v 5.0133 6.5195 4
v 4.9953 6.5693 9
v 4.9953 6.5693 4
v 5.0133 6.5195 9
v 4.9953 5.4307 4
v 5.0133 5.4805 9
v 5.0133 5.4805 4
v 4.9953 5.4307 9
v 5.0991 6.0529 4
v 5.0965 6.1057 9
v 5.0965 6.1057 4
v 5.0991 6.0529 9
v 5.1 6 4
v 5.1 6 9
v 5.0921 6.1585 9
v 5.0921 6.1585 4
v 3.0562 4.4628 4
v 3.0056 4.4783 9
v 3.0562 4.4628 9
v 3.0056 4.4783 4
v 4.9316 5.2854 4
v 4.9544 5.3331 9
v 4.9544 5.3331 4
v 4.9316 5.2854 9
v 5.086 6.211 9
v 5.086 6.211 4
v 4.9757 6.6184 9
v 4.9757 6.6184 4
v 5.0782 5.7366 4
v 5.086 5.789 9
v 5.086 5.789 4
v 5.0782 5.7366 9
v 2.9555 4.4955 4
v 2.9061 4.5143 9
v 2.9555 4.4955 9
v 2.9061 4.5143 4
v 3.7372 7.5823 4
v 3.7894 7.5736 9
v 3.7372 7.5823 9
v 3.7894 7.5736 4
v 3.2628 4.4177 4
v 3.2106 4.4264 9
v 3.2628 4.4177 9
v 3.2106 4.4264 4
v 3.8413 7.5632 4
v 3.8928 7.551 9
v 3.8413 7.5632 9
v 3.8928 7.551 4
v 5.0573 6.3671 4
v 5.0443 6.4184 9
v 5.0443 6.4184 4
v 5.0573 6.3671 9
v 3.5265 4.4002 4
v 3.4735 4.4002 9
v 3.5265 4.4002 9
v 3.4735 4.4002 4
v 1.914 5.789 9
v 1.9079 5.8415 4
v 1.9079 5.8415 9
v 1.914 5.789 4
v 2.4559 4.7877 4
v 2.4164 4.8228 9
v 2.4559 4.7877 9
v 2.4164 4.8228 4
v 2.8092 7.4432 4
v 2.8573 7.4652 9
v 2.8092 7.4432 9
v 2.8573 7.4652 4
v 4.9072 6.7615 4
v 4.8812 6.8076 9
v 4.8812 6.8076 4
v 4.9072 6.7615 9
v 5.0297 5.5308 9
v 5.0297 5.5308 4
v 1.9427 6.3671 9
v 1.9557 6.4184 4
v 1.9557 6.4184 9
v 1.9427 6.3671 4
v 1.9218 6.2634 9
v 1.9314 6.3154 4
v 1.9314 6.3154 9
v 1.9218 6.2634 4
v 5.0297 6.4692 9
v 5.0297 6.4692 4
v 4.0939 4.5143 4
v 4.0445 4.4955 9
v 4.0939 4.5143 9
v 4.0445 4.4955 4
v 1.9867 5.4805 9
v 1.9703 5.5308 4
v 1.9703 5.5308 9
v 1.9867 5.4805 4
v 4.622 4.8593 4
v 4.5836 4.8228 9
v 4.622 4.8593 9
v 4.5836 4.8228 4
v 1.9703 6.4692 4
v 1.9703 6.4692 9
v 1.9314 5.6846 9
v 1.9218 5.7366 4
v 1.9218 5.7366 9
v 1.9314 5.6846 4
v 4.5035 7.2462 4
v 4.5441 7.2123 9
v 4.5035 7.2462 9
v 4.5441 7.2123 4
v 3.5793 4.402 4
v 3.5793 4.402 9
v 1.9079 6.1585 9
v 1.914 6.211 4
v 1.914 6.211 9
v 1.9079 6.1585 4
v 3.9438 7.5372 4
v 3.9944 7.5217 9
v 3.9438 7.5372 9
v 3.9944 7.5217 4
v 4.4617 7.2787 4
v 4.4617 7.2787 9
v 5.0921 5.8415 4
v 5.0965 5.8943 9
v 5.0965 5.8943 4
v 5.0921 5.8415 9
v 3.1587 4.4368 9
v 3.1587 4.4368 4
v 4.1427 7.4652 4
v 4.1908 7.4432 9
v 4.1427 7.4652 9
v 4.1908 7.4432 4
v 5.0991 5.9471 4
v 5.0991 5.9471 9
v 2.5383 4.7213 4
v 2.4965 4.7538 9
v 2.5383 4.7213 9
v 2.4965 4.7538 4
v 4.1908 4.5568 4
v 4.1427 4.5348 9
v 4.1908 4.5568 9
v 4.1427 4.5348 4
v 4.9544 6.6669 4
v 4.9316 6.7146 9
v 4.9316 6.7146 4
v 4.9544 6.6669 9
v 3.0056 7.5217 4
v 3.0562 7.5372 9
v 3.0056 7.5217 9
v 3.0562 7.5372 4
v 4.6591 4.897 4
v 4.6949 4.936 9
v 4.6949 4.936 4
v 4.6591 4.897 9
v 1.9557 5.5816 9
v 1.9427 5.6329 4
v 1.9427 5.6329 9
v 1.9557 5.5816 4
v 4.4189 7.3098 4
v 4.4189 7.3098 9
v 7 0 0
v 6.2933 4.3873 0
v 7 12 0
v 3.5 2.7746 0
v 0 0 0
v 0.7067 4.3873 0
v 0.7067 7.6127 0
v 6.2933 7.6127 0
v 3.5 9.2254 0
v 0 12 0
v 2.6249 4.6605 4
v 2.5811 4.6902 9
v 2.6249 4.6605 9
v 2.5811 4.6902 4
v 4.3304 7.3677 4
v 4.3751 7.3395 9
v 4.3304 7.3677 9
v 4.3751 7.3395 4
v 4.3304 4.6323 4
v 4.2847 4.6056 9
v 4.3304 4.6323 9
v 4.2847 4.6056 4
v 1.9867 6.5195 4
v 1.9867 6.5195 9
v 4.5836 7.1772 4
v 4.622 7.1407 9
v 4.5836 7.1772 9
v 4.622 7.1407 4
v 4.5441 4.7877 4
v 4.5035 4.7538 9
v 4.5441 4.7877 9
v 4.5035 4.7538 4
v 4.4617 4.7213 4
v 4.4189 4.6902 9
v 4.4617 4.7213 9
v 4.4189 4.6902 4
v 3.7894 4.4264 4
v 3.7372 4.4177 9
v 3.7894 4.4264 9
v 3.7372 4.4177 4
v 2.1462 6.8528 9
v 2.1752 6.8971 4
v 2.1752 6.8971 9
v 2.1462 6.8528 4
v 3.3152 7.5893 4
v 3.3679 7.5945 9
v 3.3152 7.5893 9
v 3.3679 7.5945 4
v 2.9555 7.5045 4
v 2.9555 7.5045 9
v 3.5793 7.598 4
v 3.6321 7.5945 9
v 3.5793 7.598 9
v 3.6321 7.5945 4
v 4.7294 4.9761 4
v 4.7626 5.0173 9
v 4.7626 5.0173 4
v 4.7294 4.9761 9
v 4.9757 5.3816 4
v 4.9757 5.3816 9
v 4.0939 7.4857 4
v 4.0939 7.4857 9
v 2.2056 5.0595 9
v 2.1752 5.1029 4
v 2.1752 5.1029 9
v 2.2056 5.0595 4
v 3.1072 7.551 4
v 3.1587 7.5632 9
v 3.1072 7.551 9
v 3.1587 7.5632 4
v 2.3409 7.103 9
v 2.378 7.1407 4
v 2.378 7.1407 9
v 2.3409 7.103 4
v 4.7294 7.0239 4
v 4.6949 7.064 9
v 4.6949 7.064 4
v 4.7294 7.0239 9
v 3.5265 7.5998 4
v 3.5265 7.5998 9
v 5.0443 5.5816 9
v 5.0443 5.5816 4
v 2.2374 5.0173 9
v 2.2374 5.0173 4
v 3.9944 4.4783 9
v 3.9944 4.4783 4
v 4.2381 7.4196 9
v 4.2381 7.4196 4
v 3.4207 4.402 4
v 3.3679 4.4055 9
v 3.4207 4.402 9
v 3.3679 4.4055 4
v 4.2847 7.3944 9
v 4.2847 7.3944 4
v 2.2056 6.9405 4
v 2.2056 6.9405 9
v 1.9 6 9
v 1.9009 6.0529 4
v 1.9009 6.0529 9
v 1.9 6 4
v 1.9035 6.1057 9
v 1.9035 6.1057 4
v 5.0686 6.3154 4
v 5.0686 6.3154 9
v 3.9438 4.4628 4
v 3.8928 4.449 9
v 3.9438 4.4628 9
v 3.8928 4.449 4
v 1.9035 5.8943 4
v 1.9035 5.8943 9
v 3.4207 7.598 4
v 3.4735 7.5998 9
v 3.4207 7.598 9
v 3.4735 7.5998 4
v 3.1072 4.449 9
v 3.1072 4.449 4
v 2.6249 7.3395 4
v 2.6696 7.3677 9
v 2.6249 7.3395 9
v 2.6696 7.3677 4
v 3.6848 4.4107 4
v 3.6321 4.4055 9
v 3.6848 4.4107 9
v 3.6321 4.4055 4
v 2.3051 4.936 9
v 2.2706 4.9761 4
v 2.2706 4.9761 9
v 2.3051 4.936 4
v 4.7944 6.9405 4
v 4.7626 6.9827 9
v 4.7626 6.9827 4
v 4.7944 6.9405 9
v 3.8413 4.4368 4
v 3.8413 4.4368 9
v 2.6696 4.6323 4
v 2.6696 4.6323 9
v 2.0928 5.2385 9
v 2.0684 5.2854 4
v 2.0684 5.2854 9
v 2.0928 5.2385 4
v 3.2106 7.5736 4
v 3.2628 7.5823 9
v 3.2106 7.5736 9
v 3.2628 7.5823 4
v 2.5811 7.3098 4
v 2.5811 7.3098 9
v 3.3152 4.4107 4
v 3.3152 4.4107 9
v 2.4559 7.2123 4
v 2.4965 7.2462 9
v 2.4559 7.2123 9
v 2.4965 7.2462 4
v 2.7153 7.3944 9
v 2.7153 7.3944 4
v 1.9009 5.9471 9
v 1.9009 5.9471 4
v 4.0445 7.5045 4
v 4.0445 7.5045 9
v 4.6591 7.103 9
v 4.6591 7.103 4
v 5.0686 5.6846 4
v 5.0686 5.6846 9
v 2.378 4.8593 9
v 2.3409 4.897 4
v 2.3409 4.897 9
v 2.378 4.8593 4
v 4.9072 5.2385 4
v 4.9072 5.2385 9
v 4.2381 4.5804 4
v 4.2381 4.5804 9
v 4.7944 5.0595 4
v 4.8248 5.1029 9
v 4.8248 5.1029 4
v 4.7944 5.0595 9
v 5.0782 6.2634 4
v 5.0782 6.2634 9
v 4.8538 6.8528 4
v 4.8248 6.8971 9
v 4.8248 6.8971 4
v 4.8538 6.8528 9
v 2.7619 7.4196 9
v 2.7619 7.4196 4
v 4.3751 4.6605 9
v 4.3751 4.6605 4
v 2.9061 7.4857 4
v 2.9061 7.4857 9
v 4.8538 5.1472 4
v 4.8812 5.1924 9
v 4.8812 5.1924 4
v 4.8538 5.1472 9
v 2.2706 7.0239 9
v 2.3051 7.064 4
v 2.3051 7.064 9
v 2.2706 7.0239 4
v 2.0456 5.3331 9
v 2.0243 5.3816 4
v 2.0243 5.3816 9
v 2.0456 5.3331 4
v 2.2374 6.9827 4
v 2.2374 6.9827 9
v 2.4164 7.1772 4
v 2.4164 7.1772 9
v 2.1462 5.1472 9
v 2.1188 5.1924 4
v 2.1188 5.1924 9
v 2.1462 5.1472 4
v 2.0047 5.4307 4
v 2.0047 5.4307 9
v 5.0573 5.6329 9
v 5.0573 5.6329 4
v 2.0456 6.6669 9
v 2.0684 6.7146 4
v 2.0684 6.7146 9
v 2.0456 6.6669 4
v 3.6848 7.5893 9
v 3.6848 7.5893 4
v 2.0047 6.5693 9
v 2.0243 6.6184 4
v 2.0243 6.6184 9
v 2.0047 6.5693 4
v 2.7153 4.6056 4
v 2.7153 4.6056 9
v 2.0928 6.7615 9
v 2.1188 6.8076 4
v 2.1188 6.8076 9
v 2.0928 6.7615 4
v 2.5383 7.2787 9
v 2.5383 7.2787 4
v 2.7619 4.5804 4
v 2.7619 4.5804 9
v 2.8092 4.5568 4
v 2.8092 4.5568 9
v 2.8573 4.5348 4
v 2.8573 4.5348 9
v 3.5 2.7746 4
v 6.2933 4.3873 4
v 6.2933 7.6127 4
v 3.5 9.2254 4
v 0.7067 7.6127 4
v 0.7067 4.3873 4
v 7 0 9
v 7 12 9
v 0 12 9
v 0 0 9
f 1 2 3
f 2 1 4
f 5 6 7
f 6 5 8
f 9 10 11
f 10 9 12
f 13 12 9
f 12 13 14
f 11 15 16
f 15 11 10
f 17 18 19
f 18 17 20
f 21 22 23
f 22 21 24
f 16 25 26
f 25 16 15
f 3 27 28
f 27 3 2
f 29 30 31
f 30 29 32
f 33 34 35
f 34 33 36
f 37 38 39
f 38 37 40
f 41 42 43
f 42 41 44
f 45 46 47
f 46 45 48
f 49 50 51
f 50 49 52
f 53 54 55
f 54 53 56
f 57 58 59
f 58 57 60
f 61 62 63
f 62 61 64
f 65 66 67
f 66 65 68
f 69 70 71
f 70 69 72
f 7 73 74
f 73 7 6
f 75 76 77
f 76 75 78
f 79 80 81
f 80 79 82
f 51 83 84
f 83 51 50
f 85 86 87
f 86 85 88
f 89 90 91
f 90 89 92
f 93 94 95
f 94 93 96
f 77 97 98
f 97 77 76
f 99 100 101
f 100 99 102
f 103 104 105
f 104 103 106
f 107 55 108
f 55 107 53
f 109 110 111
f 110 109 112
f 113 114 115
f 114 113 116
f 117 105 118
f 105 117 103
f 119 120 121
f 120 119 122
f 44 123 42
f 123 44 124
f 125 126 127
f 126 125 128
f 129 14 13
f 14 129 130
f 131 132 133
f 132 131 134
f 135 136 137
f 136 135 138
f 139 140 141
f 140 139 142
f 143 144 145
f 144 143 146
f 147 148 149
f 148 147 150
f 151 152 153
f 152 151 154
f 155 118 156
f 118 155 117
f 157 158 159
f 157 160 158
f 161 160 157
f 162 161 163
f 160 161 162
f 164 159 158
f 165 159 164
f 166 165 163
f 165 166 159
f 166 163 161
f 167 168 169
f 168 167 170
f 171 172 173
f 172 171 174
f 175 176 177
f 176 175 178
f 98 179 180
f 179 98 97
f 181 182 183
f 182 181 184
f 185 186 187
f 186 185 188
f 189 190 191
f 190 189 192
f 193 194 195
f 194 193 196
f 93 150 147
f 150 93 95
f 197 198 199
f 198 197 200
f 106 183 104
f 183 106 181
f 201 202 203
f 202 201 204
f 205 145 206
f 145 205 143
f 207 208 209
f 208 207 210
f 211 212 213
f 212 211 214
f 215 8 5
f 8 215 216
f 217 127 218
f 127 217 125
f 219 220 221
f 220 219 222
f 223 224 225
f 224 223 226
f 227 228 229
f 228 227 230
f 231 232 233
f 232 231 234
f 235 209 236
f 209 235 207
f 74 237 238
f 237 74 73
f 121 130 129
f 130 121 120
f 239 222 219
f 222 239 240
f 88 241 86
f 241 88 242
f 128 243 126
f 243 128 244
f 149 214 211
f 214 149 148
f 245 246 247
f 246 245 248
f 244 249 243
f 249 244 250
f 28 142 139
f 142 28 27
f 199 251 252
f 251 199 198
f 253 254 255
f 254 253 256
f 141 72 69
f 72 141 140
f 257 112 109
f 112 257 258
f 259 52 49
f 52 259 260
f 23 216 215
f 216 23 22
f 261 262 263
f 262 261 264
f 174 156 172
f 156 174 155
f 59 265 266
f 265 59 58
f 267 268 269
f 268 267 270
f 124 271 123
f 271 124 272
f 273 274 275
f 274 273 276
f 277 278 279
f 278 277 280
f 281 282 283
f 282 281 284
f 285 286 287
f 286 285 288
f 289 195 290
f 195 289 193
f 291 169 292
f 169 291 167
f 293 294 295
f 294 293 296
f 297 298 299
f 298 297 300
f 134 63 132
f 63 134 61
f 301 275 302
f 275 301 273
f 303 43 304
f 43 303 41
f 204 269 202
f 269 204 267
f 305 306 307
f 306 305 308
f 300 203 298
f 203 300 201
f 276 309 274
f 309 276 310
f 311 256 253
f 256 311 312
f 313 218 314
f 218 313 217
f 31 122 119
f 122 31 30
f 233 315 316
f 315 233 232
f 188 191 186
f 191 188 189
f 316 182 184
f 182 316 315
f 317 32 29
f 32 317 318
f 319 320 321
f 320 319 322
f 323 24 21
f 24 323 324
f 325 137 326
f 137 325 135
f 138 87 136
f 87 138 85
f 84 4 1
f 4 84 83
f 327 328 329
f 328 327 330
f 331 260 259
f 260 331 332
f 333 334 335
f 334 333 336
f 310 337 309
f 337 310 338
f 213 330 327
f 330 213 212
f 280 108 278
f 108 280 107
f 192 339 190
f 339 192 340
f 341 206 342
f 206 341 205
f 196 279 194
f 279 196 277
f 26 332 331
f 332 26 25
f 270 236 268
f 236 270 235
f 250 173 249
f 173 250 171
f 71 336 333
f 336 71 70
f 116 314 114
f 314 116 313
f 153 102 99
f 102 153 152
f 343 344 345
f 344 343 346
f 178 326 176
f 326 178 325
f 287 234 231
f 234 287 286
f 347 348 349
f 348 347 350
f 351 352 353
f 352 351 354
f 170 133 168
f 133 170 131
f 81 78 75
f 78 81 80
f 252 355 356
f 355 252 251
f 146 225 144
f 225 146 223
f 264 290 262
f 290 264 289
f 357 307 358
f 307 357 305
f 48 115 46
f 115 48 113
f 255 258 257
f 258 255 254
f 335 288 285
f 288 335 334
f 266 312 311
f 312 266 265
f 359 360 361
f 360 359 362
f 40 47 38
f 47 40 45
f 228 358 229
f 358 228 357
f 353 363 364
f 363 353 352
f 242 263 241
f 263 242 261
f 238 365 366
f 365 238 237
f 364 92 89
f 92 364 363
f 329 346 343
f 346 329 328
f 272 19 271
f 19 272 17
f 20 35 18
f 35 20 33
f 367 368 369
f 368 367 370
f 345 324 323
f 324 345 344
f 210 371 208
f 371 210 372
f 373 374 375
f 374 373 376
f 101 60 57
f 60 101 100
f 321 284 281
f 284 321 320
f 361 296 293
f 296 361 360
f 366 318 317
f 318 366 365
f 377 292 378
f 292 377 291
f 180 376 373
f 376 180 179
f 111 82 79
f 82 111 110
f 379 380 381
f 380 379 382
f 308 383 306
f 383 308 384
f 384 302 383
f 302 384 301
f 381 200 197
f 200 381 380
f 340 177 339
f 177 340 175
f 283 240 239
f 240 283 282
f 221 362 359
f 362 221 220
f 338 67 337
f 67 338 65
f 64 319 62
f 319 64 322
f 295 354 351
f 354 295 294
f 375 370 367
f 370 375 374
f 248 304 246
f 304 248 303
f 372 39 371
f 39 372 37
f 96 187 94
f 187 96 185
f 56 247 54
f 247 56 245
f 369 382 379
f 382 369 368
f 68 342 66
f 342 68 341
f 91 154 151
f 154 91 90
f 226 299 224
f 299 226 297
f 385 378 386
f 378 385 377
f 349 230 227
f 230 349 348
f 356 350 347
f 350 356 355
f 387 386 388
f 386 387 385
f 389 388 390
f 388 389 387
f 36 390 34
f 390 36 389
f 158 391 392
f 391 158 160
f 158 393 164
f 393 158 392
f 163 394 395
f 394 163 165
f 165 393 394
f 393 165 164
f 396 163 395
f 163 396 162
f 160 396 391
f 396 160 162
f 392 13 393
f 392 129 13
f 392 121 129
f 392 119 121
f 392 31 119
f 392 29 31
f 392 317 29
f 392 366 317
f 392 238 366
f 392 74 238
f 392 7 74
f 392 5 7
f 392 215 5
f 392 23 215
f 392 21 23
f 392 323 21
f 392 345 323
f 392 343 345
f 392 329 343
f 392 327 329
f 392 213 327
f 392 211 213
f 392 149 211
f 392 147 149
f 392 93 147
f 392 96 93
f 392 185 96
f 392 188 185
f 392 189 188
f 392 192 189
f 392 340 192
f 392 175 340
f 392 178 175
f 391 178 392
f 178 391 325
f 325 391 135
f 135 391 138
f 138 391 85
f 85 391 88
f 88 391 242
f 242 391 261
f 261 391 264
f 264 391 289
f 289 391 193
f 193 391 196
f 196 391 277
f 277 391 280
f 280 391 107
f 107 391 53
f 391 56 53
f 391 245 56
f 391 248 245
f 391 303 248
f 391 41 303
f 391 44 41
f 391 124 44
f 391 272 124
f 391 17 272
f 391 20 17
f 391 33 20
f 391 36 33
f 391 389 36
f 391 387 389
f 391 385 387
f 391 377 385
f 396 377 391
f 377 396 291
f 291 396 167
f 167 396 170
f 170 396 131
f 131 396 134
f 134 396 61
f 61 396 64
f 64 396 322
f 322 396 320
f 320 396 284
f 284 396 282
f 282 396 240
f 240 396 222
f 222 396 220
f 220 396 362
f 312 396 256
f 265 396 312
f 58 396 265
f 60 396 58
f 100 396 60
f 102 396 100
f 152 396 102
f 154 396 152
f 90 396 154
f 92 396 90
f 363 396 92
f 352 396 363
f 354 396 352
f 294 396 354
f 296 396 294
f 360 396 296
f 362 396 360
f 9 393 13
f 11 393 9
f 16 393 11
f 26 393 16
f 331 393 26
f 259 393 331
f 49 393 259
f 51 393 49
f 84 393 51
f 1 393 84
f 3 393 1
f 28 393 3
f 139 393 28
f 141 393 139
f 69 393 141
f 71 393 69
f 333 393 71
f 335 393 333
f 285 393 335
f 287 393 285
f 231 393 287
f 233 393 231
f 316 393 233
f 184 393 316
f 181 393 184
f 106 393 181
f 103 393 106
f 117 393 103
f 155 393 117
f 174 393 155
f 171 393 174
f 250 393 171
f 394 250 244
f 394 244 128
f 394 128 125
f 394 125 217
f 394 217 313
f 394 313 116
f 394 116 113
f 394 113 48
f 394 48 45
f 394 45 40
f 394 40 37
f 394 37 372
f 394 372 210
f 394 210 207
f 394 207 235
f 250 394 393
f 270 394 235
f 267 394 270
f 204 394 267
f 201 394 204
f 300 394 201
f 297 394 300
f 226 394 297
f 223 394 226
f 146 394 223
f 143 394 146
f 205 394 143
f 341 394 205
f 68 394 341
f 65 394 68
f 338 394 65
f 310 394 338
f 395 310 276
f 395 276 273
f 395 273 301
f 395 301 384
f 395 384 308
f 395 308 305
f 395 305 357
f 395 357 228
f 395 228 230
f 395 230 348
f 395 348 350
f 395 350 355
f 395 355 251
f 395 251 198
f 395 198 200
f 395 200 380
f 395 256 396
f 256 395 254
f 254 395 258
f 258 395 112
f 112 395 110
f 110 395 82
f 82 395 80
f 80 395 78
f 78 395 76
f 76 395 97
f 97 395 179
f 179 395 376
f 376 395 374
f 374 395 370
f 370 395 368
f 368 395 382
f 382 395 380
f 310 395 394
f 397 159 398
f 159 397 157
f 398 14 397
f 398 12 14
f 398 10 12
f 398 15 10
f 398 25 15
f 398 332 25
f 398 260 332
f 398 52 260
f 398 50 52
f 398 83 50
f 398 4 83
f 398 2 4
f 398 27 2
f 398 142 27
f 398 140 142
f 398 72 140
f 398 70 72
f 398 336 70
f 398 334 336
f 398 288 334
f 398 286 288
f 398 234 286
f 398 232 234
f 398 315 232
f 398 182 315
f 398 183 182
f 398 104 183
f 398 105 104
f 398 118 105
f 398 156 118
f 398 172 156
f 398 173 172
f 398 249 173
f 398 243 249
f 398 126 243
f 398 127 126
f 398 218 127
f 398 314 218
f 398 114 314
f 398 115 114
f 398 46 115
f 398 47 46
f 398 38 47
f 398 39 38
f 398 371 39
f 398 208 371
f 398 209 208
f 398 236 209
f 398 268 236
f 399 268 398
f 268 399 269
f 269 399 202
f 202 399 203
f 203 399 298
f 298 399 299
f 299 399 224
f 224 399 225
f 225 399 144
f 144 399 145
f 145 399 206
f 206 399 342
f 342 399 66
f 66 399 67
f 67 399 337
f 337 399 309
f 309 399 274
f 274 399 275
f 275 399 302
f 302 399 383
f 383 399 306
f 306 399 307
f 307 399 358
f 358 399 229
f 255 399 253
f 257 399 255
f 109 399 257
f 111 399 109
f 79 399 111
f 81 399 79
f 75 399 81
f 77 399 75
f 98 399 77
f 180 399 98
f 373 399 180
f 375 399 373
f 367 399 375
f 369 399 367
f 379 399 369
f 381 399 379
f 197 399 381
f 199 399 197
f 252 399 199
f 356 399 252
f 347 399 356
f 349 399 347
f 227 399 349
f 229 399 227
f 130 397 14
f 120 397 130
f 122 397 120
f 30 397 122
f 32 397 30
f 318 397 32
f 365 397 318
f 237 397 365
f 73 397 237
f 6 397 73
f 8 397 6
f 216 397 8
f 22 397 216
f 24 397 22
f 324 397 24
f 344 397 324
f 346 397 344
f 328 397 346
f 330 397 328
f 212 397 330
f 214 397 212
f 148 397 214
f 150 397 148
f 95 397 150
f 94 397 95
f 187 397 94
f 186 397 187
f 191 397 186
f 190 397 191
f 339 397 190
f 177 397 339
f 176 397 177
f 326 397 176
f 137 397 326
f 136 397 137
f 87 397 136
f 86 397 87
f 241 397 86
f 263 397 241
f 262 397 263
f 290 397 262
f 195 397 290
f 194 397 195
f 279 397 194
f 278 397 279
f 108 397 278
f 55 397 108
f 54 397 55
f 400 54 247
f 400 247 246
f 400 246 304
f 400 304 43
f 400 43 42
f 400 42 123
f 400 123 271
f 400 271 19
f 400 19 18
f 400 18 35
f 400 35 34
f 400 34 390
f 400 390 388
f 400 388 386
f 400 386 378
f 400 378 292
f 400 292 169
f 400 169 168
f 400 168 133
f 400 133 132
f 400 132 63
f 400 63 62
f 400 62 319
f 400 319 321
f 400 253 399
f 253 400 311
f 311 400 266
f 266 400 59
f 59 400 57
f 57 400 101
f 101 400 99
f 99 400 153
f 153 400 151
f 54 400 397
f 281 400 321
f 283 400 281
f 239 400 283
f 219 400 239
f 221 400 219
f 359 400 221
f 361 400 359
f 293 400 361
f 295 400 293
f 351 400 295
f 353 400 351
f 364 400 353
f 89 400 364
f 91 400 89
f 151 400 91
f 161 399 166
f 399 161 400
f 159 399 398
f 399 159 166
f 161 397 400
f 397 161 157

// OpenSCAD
$fn=190;

difference() {
    cube([7, 12, 9]);
    translate([3.5, 6, 0]) {
        cylinder(d=3.2, h=10);
        rotate([0, 0, 30])cylinder(r = 5.5 / 2 / cos(180 / 6) + 0.05, h=4, $fn=6);
    }
}
